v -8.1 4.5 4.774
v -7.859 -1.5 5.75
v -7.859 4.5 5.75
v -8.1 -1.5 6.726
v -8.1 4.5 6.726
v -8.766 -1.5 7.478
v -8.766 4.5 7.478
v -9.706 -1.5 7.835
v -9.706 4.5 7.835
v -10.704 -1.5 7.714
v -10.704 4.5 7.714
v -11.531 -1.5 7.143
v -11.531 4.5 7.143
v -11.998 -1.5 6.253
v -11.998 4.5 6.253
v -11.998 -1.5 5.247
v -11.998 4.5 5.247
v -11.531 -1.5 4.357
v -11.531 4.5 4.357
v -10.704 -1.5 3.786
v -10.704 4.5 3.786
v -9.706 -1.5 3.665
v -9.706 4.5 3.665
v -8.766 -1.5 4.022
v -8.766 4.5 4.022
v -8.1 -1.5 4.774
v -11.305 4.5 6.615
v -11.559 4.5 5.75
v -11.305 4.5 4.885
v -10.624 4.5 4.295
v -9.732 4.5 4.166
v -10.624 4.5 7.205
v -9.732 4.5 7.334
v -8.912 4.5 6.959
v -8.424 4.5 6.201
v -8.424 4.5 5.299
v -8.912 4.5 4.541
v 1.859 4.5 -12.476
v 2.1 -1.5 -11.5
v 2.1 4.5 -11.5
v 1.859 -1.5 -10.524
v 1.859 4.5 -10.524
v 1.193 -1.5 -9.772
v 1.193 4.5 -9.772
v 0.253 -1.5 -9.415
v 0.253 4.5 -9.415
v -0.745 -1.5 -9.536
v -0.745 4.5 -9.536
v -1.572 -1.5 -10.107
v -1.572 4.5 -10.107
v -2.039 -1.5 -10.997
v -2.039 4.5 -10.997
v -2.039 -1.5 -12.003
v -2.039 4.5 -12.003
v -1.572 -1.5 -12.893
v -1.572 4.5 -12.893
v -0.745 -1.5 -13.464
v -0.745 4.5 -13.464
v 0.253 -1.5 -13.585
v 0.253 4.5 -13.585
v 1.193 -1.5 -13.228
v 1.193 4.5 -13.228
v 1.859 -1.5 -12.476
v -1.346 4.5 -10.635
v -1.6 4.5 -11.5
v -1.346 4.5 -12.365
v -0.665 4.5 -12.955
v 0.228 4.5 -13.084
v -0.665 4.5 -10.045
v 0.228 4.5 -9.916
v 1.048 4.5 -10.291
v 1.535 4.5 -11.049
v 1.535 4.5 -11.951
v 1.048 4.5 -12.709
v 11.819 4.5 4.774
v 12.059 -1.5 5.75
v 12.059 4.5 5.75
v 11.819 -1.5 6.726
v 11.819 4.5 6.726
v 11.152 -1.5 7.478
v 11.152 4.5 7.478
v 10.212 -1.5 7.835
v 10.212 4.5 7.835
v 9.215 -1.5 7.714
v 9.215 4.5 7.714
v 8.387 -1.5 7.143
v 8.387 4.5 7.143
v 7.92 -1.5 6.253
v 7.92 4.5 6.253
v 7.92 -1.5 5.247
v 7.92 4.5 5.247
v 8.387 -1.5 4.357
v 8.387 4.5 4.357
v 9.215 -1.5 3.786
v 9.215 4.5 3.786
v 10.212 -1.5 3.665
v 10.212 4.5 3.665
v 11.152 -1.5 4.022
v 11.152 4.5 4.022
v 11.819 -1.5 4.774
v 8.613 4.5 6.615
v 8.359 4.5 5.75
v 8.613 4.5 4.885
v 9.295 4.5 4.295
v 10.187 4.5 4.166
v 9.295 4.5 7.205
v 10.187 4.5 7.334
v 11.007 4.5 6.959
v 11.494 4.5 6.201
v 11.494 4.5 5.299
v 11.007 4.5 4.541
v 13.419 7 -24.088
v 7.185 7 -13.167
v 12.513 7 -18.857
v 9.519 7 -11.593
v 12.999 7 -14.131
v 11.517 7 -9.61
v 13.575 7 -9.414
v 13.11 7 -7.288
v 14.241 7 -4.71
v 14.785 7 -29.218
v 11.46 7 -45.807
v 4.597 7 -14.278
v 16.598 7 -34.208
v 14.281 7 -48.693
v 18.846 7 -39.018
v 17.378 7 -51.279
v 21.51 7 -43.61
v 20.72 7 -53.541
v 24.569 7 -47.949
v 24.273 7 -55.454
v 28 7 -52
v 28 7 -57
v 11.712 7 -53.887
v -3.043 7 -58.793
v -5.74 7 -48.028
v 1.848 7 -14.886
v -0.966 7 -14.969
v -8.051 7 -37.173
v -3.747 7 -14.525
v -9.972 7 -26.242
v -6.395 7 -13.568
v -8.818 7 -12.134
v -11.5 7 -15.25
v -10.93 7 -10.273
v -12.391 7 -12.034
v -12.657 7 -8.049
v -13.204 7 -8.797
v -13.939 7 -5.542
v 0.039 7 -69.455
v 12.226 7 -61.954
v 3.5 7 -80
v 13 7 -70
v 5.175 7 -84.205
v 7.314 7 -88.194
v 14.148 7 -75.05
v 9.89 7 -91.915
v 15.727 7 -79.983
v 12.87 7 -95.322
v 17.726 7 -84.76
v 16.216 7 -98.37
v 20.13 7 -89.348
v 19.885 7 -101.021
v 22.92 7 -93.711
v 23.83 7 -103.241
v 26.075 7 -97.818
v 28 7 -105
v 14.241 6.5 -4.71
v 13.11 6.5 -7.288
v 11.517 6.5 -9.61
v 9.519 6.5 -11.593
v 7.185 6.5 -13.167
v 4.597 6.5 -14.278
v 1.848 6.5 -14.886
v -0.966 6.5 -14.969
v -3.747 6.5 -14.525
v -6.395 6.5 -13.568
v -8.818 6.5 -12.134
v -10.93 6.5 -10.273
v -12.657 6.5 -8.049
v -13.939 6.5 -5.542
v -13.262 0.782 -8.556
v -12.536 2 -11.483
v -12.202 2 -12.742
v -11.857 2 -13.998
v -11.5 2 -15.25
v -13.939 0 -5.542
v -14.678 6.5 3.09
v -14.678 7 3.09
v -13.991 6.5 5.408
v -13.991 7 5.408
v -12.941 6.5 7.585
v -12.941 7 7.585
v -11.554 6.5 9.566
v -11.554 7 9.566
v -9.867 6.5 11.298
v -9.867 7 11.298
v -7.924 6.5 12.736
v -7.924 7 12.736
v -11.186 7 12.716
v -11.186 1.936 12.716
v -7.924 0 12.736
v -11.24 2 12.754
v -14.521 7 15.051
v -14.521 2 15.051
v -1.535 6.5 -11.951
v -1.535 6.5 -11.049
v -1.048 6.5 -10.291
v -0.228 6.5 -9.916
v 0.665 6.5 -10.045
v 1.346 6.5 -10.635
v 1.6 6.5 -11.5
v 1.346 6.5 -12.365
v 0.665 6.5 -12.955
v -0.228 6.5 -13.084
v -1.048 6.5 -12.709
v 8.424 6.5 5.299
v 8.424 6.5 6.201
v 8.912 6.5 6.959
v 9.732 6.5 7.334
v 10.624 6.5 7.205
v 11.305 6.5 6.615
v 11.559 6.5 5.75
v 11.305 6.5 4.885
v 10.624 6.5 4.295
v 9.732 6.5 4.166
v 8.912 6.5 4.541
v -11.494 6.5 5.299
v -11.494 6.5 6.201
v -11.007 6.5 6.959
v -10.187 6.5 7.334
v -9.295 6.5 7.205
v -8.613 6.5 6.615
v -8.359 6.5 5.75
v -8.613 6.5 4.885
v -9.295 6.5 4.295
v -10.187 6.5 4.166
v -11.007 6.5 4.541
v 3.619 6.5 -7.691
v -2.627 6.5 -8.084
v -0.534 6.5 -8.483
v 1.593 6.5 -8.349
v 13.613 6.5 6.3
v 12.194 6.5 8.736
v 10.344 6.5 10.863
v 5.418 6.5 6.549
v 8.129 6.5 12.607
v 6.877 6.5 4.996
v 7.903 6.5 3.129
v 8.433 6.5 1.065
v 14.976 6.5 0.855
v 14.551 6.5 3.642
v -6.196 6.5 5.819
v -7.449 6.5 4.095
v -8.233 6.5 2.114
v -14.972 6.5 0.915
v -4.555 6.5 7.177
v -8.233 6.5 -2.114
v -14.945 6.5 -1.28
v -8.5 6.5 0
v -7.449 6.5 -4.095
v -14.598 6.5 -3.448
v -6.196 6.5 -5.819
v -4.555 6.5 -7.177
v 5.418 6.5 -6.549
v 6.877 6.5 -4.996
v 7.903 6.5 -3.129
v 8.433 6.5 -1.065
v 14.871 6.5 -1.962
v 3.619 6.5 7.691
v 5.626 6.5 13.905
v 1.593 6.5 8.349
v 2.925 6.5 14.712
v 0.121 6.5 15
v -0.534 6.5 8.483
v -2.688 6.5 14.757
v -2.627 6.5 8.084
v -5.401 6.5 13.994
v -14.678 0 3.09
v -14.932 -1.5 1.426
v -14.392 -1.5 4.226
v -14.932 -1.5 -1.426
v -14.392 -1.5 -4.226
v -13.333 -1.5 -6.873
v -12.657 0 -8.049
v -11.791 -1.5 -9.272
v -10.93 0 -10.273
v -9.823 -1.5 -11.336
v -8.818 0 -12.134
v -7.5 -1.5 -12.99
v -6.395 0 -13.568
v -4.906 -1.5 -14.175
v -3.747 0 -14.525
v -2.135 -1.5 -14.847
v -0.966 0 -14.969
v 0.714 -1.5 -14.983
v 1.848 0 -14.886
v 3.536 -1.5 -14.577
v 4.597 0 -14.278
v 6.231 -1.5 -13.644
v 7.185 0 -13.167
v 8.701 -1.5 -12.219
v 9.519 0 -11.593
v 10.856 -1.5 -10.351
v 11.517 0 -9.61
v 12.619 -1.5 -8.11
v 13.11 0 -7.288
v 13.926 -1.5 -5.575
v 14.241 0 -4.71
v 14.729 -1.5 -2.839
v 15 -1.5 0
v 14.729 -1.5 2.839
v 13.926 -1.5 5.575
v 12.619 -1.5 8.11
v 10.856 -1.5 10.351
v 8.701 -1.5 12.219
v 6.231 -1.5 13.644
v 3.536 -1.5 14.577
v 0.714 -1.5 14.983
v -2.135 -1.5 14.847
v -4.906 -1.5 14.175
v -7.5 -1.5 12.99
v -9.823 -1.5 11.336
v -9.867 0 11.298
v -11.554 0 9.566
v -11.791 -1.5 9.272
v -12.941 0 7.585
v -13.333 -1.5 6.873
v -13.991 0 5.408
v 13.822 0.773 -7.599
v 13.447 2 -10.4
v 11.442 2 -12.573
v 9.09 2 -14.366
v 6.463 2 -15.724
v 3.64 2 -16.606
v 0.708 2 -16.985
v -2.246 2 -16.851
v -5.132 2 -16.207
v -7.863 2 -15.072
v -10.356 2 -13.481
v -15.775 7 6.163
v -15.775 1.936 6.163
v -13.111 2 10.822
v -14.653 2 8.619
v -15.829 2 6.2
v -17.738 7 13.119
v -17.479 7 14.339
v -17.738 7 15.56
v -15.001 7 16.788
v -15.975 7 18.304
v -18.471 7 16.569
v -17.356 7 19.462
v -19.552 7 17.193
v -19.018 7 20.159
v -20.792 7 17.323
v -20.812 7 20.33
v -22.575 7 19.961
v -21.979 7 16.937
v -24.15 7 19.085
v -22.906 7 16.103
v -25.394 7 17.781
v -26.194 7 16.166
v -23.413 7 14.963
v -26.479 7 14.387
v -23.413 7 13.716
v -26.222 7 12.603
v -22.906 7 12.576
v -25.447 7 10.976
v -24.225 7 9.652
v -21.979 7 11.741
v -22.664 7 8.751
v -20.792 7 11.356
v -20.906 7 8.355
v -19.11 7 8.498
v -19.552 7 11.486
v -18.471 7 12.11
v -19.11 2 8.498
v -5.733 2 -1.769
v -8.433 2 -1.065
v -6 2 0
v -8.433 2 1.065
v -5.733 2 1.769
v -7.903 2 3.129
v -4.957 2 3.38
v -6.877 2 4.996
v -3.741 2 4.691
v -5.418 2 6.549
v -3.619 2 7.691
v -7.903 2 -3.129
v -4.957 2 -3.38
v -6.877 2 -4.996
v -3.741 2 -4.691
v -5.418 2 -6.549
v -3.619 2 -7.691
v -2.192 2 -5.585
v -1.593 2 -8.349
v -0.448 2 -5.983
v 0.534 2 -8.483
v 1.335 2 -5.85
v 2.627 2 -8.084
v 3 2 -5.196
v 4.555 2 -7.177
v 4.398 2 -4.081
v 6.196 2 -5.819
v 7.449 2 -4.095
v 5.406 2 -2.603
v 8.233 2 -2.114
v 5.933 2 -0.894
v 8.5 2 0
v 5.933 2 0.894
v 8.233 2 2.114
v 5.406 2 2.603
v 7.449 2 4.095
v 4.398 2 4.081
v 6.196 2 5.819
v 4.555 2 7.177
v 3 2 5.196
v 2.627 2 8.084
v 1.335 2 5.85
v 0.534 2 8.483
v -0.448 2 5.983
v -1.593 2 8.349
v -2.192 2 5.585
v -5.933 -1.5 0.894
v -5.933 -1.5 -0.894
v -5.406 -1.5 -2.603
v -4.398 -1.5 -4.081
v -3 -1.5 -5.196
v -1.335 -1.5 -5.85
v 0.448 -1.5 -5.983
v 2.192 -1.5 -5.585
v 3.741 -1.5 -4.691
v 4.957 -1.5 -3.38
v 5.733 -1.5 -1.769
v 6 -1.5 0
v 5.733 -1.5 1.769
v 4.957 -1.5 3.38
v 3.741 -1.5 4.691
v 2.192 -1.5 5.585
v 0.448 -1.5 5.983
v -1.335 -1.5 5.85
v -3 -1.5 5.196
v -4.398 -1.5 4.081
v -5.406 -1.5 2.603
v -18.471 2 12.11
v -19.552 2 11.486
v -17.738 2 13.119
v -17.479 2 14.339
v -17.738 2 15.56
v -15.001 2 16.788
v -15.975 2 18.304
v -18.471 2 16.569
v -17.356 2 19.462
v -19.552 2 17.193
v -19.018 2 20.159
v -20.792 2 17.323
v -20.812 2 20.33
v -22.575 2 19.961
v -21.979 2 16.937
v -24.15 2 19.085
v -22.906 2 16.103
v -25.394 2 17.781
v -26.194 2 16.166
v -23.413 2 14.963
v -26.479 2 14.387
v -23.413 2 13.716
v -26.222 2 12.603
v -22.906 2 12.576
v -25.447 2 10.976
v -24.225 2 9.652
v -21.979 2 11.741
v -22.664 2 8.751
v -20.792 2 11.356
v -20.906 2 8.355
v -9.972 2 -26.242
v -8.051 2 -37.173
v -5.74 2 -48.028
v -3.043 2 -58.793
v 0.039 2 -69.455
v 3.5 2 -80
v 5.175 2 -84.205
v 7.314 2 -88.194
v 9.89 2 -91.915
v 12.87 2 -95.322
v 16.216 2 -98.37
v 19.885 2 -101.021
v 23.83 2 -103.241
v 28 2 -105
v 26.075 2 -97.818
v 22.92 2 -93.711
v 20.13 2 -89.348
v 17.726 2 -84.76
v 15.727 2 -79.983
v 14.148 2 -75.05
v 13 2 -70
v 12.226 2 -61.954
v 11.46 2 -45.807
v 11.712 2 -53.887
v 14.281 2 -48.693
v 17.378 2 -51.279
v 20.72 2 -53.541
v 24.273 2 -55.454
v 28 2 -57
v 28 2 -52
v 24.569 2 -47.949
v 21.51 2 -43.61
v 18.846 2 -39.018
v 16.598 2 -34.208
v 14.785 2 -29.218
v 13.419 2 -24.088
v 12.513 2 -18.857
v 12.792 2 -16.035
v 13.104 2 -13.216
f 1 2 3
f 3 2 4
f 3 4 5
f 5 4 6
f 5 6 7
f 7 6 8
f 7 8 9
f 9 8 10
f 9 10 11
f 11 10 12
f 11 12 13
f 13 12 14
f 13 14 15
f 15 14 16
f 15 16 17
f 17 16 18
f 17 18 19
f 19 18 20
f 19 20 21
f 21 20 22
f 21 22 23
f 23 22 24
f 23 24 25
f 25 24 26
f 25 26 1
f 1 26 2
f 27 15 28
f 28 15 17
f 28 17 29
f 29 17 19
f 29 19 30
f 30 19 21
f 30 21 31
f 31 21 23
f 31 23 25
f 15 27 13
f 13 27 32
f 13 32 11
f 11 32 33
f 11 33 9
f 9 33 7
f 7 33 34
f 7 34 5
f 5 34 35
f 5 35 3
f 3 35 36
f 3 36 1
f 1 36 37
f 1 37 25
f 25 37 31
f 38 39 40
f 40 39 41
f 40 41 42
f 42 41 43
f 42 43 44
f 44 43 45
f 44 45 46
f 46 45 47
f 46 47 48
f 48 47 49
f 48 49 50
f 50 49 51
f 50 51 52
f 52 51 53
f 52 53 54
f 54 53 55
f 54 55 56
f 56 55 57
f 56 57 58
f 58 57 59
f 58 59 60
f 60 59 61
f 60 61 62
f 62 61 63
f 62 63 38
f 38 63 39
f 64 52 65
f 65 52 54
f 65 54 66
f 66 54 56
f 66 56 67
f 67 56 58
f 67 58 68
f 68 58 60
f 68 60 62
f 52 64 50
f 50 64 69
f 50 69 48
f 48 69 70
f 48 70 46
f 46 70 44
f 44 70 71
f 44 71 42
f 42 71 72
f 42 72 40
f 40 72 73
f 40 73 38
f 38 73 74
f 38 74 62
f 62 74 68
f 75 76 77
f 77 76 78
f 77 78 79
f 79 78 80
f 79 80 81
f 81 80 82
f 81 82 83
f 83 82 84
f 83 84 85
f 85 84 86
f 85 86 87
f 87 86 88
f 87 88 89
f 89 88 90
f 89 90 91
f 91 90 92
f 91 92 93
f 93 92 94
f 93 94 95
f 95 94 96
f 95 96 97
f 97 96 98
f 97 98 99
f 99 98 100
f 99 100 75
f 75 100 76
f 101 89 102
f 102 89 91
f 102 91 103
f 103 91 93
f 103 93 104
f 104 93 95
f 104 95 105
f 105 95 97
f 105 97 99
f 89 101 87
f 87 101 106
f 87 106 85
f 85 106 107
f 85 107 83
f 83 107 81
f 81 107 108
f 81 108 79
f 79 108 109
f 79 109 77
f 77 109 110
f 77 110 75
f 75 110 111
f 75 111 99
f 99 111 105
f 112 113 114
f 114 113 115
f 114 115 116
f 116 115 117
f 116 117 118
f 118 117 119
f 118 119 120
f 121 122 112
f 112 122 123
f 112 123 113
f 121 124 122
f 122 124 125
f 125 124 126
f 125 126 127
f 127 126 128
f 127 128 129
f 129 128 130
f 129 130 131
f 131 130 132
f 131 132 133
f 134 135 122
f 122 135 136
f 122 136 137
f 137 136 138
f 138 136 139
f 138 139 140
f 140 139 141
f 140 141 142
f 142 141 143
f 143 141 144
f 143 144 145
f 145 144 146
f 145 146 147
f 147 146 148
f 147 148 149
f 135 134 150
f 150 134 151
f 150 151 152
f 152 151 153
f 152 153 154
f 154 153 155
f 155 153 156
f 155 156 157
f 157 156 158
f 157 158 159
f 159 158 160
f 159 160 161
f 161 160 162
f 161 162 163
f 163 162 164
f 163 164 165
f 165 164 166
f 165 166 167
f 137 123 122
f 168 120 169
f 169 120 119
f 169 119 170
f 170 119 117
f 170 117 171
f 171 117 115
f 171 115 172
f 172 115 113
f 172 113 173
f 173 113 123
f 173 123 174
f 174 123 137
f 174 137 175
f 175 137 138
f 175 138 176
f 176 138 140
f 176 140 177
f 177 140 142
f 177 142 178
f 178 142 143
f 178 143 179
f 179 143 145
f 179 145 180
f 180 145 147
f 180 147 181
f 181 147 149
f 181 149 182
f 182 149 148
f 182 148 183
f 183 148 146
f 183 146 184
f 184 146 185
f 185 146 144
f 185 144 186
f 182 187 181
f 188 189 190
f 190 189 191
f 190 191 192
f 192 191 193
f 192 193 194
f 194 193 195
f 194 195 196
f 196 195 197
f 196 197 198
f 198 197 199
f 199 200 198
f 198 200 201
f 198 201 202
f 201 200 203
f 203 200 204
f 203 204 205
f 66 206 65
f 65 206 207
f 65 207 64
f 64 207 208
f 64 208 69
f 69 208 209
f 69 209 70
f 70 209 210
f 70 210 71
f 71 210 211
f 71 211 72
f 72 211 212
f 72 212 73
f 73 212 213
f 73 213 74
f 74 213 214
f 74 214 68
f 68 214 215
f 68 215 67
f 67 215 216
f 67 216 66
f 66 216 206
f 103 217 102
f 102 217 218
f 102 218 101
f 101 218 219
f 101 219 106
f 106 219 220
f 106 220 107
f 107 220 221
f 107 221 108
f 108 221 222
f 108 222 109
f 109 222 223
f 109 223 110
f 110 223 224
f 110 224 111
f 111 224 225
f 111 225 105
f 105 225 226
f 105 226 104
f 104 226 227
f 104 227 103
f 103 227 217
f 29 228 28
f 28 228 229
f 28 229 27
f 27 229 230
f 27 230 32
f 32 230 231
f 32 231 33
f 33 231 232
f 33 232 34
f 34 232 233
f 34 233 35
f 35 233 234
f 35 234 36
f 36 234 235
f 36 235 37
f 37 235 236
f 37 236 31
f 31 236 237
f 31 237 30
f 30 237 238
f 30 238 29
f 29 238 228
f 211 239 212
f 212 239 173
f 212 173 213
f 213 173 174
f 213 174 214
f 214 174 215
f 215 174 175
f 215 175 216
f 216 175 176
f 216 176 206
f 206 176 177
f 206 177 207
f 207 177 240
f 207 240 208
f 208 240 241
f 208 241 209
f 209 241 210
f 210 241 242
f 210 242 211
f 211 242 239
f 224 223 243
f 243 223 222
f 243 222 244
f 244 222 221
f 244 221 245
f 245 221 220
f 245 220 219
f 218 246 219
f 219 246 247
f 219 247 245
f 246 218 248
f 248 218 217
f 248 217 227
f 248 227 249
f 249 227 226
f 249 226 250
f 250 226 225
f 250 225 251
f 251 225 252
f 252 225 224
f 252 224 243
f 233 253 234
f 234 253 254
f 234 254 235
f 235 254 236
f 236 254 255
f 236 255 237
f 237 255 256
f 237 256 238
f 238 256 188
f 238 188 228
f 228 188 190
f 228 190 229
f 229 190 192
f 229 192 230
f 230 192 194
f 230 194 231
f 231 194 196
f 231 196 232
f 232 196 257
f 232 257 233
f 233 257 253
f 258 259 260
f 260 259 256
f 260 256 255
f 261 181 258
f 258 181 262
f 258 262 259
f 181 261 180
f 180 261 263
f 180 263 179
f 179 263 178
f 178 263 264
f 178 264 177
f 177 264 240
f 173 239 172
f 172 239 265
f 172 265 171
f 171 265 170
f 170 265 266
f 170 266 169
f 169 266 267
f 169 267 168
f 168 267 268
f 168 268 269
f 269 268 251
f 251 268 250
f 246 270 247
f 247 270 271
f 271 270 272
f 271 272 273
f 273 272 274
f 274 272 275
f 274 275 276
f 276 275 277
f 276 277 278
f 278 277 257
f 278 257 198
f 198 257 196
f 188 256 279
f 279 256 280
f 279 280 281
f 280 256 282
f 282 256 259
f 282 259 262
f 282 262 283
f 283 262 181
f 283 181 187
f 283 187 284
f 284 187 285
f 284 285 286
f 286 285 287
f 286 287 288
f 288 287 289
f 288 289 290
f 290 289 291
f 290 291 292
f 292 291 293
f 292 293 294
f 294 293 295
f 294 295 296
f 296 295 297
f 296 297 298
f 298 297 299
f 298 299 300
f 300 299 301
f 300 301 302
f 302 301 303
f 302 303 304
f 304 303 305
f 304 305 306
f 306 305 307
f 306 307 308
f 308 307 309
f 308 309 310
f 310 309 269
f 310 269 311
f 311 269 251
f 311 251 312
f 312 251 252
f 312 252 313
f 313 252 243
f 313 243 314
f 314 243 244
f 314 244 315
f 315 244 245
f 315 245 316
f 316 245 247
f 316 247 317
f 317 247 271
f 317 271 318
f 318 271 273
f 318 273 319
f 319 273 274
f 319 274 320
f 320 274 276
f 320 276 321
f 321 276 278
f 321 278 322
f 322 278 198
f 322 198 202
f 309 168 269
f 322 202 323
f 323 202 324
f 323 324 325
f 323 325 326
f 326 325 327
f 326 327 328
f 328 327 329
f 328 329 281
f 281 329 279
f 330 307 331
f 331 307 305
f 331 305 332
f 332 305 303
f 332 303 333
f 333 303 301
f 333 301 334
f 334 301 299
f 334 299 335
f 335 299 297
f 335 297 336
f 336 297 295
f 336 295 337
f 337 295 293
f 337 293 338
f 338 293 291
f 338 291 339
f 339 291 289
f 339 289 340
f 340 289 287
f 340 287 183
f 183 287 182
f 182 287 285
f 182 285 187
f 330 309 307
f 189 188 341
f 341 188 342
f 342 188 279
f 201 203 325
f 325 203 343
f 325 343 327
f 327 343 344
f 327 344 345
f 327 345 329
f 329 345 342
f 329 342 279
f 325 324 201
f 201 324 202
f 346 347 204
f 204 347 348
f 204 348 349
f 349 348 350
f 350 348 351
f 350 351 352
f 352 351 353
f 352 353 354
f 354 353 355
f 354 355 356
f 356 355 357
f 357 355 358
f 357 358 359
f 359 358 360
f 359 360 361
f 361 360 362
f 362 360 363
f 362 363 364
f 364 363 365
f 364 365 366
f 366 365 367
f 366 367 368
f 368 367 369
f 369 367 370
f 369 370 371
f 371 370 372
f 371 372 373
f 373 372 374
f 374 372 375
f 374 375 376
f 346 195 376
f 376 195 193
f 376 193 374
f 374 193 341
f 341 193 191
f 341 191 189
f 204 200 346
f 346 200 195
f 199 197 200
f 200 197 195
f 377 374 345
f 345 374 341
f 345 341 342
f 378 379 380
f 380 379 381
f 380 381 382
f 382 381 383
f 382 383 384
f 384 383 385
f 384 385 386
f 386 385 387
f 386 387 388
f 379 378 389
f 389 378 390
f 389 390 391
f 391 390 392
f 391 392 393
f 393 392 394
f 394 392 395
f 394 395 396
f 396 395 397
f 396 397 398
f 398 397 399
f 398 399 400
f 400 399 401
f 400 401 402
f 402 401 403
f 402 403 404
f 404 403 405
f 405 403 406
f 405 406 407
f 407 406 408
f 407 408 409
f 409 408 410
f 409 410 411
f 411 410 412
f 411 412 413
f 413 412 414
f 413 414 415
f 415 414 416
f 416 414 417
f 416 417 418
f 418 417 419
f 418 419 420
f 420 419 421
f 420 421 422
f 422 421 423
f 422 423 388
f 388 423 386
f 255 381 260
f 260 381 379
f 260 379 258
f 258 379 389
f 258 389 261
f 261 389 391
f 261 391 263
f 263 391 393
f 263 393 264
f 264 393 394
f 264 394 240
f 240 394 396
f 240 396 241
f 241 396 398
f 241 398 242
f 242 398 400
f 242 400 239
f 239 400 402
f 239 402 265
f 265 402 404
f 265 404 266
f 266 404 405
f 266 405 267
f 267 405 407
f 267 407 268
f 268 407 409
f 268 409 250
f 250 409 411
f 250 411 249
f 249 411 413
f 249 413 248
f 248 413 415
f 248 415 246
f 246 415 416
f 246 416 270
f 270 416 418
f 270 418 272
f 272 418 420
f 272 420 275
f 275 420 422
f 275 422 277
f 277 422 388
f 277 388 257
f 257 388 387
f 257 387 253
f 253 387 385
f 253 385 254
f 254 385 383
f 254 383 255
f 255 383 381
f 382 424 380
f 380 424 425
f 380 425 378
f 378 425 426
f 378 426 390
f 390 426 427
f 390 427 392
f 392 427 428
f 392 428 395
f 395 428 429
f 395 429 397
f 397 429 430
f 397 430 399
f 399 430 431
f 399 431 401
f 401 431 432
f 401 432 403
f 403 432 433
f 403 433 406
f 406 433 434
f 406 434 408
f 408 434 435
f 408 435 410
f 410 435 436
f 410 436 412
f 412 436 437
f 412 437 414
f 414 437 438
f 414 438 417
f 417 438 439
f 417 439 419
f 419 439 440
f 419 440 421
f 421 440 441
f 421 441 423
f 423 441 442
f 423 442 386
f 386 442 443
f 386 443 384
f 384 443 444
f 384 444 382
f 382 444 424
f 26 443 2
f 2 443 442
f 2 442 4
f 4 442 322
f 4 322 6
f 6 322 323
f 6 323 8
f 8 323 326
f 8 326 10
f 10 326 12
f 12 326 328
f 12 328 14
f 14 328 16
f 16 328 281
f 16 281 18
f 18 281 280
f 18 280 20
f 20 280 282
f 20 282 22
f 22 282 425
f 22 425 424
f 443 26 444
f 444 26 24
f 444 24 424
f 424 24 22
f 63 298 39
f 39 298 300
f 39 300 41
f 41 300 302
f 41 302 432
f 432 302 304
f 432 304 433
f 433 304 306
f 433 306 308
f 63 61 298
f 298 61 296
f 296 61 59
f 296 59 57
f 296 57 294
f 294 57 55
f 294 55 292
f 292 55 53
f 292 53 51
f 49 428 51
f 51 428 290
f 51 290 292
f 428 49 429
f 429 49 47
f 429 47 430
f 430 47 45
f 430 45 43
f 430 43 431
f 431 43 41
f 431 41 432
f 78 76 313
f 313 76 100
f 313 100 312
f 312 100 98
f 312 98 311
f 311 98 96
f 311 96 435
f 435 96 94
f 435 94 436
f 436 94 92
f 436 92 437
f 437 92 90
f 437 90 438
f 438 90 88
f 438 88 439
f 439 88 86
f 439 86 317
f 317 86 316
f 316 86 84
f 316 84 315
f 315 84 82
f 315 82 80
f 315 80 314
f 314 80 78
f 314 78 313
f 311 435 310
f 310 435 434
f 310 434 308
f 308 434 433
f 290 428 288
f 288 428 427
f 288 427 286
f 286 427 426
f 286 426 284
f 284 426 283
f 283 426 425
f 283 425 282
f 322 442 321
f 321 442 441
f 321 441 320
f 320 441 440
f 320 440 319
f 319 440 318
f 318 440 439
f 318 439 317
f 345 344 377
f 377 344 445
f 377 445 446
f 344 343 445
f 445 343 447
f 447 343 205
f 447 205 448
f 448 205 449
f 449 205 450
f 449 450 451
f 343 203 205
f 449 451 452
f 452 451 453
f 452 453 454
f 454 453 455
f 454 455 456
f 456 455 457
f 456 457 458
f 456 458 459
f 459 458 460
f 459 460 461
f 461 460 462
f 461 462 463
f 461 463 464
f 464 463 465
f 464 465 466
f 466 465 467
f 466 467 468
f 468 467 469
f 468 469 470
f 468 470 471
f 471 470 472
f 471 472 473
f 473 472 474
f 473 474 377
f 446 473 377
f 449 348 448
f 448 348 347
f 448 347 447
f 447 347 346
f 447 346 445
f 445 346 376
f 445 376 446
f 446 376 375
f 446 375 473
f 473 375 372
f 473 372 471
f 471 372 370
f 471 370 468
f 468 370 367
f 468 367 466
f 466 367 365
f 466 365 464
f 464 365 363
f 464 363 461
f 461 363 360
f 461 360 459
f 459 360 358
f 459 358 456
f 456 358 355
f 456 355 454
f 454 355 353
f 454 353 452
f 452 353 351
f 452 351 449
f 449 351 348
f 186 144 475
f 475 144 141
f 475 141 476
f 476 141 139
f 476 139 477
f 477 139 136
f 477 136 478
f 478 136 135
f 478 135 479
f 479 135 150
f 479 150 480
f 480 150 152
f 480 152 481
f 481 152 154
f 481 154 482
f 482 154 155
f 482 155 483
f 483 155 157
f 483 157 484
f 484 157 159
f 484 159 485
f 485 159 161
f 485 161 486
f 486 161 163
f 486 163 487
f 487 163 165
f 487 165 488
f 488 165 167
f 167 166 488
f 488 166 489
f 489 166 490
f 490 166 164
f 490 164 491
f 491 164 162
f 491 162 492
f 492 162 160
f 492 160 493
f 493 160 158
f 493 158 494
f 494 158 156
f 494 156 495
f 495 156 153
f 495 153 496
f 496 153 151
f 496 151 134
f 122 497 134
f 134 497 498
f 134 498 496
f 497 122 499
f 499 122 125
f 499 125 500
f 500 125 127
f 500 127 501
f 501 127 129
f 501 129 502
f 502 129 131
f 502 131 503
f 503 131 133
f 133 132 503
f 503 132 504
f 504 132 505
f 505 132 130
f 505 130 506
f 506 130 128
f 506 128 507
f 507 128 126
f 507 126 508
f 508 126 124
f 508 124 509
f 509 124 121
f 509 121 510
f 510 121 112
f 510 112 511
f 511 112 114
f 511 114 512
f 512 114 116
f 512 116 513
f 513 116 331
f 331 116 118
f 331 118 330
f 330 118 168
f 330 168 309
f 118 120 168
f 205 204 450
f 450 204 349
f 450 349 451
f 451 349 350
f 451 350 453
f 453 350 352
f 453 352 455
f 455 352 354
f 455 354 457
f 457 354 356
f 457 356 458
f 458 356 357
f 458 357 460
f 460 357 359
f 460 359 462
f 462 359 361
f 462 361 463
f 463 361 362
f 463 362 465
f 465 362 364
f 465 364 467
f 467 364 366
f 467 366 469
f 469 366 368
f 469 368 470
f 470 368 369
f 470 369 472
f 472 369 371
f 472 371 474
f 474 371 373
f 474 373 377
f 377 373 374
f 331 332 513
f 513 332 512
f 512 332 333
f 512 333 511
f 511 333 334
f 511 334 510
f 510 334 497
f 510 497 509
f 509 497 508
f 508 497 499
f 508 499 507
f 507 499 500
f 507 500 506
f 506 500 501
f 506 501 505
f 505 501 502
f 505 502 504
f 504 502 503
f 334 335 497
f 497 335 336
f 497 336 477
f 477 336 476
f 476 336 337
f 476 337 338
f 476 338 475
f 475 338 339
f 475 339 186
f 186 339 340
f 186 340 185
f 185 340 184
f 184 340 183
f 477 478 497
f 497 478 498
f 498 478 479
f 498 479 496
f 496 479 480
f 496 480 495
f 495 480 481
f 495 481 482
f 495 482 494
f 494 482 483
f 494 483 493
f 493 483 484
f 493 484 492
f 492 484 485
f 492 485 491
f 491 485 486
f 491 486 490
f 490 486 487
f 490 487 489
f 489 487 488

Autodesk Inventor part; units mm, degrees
sketch "Skizze10" plane through (0, 0, 0) normal (1, 0, 0) x (0, 1, 0)
  line L0 (-1.4, 0) -> (8.4, 0) projected
  line L1 (0, -13.2) -> (0, 2.2) projected
  line L2 (2, -2.5) -> (7, -2.5)
  line L3 (7, -2.5) -> (7, -8)
  line L4 (7, -8) -> (2, -8)
  line L5 (2, -8) -> (2, -2.5)
  point P0 (0, 0)
  point P1 (0, -11)
  dimension "d135" = 8
  dimension "d137" = 5
  dimension "d138" = 2
  dimension "d145" = 2.5
revolve "Umdrehung2" add sketch "Skizze10" angle 360 about axis through (0, -10, 0) along (0, 1, 0)
ref_plane "Arbeitsebene2" through (0, 6, 0) normal (0, 1, 0) x (1, 0, 0)
ref_plane "Arbeitsebene3" through (0, 4.5, 0) normal (0, 1, 0) x (1, 0, 0)
sketch "Skizze12" plane through (0, 4.5, 0) normal (0, 1, 0) x (1, 0, 0)
  arc A0 (3.5, 80) -> (-11.5, 15.25) centre (296.2619, -21.9337) ccw projected
  arc A1 (28, 100) -> (13, 70) centre (72.0267, 59.2367) ccw projected
  line L0 (28, 100) -> (28, 105) projected
  arc A2 (28, 105) -> (3.5, 80) centre (41.4387, 67.3251) ccw projected
  circle A3 centre (0, 0) radius 15
  arc A4 (-11.5, 15.25) -> (-15, 0) centre (120.624, -23.1002) ccw
  circle A5 centre (0, 0) radius 8 projected
  line L1 (0, 0) -> (-20.4788, -14.3394)
  line L2 (-78.9324, 0) -> (358.7942, 0) projected
  line L3 (0, 133.8507) -> (0, -48.3491) projected
  circle A6 centre (-20.4788, -14.3394) radius 6
  circle A7 centre (-20.4788, -14.3394) radius 3
  line L4 (2.2943, -3.2766) -> (-14.5211, -15.0509)
  line L5 (-2.2943, 3.2766) -> (-19.1097, -8.4977)
  arc A8 (28, 52) -> (12.5126, 18.8571) centre (72.0267, 11.2367) ccw
  line L6 (28, 52) -> (28, 57)
  arc A9 (28, 57) -> (11.4602, 45.8069) centre (41.4387, 19.3251) ccw
  arc A10 (13, 70) -> (11.4602, 45.8069) centre (261.1443, 42.0613) ccw
  arc A11 (12.5126, 18.8571) -> (15, 0) centre (261.1443, 42.0613) ccw
  line L7 (28, 105) -> (24.0256, 90.1672)
  point P0 (-16.4, 0)
  point P1 (-14.1366, -5.0155)
  point P2 (-10.4814, -11.4821)
  point P3 (-7.2048, -13.7764)
  point P4 (-9.548, -11.5687)
  point P5 (28, 54.5)
  point P6 (28, 102.5)
  point P7 (-13.9387, 5.5419)
  point P8 (14.2414, 4.7098)
  point P9 (26.0755, 97.8175)
  dimension "d147" = 30
  dimension "d148" = 55
  dimension "d149" = 25
  dimension "d150" = 12
  dimension "d152" = 3
  dimension "d153" = 4
  dimension "d154" = 4
  dimension "d221" = 57
  dimension "d222" = 15
sketch "Skizze13" plane through (0, 4.5, 0) normal (0, 1, 0) x (1, 0, 0)
  point P0 (0, 0)
extrude "Extrusion8" add sketch "Skizze12" along normal mid plane 5 contours A2 L7 A1 A10 A9 L6 A8 A11 A3 L3 A0 | L3 A3 A4 A0 | L3 A5 L2 A4 A3 | A3 A11 L2 A5 L3 | A4 A3 | A3 A11 | L3 L2 A5 | A5 L2 L3 | L2 A5 L5 A3 | A3 L3 A5 L2 | A5 L3 L2 | L2 L5 A5 | L3 L4 A5 L1 | L1 A5 L5 L2 | L5 A5 L1 A3 | A3 L1 A6 L5 | A3 L4 A5 L3 | A5 L4 L3 | A5 L4 A3 L1 | A3 L4 A6 L1 | A6
sketch "Skizze15" plane through (0, 4.5, 0) normal (0, 1, 0) x (1, 0, 0)
  arc A0 (-11.5, 15.25) -> (-13.9387, 5.5419) centre (120.624, -23.1002) ccw projected
  circle A1 centre (0, 0) radius 15
  point P0 (-15, 0)
extrude "Extrusion10" add sketch "Skizze15" along normal mid plane 12
sketch "Skizze16" plane through (0, 4.5, 0) normal (0, 1, 0) x (1, 0, 0)
  circle A0 centre (0, 0) radius 6
  dimension "d162" = 12
extrude "Extrusion11" cut sketch "Skizze16" along normal mid plane 12
sketch "Skizze17" plane through (0, 4.5, 0) normal (0, 1, 0) x (1, 0, 0)
  circle A0 centre (0, 0) radius 8.5
  dimension "d165" = 17
extrude "Extrusion12" cut sketch "Skizze17" along normal mid plane 5
chamfer "Fasen7" distance 2 angle 45 8 edges at (-12.2873, 7, 8.6036) (-9.548, 3.25, 11.5687) (-9.548, 5.75, 11.5687) (-12.2873, 2, 8.6036) (0.4428, 2, -14.9935) (0.4428, 7, -14.9935) (-14.1366, 5.75, 5.0155) (-14.1366, 3.25, 5.0155)
ref_plane "Arbeitsebene4" through (0, 4.5, 0) normal (0, 1, 0) x (1, 0, 0)
sketch "Skizze21" plane through (0, 10.5, 0) normal (0, 1, 0) x (1, 0, 0)
  circle A0 centre (0, 0) radius 15
  dimension "d200" = 30
extrude "Extrusion16" cut sketch "Skizze21" against normal blind 4
sketch "Skizze23" plane through (0, 6.5, 0) normal (0, 1, 0) x (1, 0, 0)
  line L0 (-37.3746, 0) -> (38.8958, 0) projected
  line L1 (0, 130.102) -> (0, -45.6119) projected
  line L2 (0, 0) -> (0, 20.1991)
  line L3 (0, 0) -> (-17.4929, -10.0995)
  line L4 (0, 0) -> (17.4929, -10.0995)
  circle A0 centre (0, 0) radius 8.5 projected
  arc A1 (14.2414, 4.7098) -> (-13.9387, 5.5419) centre (0, 0) ccw projected
  circle A2 centre (0, 0) radius 11.5
  circle A3 centre (-9.9593, -5.75) radius 1.6
  circle A4 centre (9.9593, -5.75) radius 1.6
  circle A5 centre (0, 11.5) radius 1.6
  arc A6 (-13.9387, 5.5419) -> (-14.6782, -3.0902) centre (0, 0) ccw projected
  arc A7 (-7.9241, -12.7361) -> (14.2414, 4.7098) centre (0, 0) ccw projected
  arc A8 (-14.6782, -3.0902) -> (-7.9241, -12.7361) centre (0, 0) ccw projected
  dimension "d203" = 360
  dimension "d205" = 3
  dimension "d206" = 3.2
  dimension "d207" = 3.2
  dimension "d208" = 3.2
  dimension "d216" = 23
  dimension "d217" = 120
extrude "Extrusion17" cut sketch "Skizze23" against normal blind 8 contours A5 A2 L1 | L1 A2 A5 | A3 A2 L3 | L3 A2 A3 | A4 A2 L4 | L4 A2 A4 | A2 L1 A5 | A4 L4 A2 | A5 L1 A2 | A2 L3 A3 | A3 L3 A2 | A2 L4 A4
sketch "Skizze24" plane through (0, -1.5, 0) normal (0, -1, 0) x (1, 0, 0)
  circle A0 centre (0, -11.5) radius 1.6 projected
  circle A1 centre (9.9593, 5.75) radius 1.6 projected
  circle A2 centre (-9.9593, 5.75) radius 1.6 projected
  circle A3 centre (0, 0) radius 6 projected
  circle A4 centre (0, 0) radius 15 projected
  dimension "d211" = 12
  dimension "d212" = 30
  dimension "d213" = 11.5
sketch "Skizze25" plane through (28, 7, -100) normal (0, 1, 0) x (1, 0, 0)
  line L0 (-56.3412, -125.0488) -> (1.0248, -125.0488)
  line L1 (1.0248, -125.0488) -> (1.0248, -72.2498)
  line L2 (1.0248, -72.2498) -> (-56.3412, -72.2498)
  line L3 (-56.3412, -72.2498) -> (-56.3412, -125.0488)
extrude "Extrusion18" cut sketch "Skizze25" along normal blind 10
sketch "Skizze26" plane through (0, -1.5, 0) normal (0, -1, 0) x (1, 0, 0)
  circle A0 centre (0, -11.5) radius 1.6 projected
  circle A1 centre (9.9593, 5.75) radius 1.6 projected
  circle A2 centre (-9.9593, 5.75) radius 1.6 projected
  circle A3 centre (-9.9593, 5.75) radius 2.1
  circle A4 centre (9.9593, 5.75) radius 2.1
  circle A5 centre (0, -11.5) radius 2.1
  dimension "d223" = 4.2
  dimension "d224" = 4.2
  dimension "d225" = 4.2
extrude "Extrusion19" cut sketch "Skizze26" against normal blind 6 contours A0 | A1 | A2 | A3 | A4 | A5
properties part number "01-03-01 Zange links nue" material "Phenolharz"
